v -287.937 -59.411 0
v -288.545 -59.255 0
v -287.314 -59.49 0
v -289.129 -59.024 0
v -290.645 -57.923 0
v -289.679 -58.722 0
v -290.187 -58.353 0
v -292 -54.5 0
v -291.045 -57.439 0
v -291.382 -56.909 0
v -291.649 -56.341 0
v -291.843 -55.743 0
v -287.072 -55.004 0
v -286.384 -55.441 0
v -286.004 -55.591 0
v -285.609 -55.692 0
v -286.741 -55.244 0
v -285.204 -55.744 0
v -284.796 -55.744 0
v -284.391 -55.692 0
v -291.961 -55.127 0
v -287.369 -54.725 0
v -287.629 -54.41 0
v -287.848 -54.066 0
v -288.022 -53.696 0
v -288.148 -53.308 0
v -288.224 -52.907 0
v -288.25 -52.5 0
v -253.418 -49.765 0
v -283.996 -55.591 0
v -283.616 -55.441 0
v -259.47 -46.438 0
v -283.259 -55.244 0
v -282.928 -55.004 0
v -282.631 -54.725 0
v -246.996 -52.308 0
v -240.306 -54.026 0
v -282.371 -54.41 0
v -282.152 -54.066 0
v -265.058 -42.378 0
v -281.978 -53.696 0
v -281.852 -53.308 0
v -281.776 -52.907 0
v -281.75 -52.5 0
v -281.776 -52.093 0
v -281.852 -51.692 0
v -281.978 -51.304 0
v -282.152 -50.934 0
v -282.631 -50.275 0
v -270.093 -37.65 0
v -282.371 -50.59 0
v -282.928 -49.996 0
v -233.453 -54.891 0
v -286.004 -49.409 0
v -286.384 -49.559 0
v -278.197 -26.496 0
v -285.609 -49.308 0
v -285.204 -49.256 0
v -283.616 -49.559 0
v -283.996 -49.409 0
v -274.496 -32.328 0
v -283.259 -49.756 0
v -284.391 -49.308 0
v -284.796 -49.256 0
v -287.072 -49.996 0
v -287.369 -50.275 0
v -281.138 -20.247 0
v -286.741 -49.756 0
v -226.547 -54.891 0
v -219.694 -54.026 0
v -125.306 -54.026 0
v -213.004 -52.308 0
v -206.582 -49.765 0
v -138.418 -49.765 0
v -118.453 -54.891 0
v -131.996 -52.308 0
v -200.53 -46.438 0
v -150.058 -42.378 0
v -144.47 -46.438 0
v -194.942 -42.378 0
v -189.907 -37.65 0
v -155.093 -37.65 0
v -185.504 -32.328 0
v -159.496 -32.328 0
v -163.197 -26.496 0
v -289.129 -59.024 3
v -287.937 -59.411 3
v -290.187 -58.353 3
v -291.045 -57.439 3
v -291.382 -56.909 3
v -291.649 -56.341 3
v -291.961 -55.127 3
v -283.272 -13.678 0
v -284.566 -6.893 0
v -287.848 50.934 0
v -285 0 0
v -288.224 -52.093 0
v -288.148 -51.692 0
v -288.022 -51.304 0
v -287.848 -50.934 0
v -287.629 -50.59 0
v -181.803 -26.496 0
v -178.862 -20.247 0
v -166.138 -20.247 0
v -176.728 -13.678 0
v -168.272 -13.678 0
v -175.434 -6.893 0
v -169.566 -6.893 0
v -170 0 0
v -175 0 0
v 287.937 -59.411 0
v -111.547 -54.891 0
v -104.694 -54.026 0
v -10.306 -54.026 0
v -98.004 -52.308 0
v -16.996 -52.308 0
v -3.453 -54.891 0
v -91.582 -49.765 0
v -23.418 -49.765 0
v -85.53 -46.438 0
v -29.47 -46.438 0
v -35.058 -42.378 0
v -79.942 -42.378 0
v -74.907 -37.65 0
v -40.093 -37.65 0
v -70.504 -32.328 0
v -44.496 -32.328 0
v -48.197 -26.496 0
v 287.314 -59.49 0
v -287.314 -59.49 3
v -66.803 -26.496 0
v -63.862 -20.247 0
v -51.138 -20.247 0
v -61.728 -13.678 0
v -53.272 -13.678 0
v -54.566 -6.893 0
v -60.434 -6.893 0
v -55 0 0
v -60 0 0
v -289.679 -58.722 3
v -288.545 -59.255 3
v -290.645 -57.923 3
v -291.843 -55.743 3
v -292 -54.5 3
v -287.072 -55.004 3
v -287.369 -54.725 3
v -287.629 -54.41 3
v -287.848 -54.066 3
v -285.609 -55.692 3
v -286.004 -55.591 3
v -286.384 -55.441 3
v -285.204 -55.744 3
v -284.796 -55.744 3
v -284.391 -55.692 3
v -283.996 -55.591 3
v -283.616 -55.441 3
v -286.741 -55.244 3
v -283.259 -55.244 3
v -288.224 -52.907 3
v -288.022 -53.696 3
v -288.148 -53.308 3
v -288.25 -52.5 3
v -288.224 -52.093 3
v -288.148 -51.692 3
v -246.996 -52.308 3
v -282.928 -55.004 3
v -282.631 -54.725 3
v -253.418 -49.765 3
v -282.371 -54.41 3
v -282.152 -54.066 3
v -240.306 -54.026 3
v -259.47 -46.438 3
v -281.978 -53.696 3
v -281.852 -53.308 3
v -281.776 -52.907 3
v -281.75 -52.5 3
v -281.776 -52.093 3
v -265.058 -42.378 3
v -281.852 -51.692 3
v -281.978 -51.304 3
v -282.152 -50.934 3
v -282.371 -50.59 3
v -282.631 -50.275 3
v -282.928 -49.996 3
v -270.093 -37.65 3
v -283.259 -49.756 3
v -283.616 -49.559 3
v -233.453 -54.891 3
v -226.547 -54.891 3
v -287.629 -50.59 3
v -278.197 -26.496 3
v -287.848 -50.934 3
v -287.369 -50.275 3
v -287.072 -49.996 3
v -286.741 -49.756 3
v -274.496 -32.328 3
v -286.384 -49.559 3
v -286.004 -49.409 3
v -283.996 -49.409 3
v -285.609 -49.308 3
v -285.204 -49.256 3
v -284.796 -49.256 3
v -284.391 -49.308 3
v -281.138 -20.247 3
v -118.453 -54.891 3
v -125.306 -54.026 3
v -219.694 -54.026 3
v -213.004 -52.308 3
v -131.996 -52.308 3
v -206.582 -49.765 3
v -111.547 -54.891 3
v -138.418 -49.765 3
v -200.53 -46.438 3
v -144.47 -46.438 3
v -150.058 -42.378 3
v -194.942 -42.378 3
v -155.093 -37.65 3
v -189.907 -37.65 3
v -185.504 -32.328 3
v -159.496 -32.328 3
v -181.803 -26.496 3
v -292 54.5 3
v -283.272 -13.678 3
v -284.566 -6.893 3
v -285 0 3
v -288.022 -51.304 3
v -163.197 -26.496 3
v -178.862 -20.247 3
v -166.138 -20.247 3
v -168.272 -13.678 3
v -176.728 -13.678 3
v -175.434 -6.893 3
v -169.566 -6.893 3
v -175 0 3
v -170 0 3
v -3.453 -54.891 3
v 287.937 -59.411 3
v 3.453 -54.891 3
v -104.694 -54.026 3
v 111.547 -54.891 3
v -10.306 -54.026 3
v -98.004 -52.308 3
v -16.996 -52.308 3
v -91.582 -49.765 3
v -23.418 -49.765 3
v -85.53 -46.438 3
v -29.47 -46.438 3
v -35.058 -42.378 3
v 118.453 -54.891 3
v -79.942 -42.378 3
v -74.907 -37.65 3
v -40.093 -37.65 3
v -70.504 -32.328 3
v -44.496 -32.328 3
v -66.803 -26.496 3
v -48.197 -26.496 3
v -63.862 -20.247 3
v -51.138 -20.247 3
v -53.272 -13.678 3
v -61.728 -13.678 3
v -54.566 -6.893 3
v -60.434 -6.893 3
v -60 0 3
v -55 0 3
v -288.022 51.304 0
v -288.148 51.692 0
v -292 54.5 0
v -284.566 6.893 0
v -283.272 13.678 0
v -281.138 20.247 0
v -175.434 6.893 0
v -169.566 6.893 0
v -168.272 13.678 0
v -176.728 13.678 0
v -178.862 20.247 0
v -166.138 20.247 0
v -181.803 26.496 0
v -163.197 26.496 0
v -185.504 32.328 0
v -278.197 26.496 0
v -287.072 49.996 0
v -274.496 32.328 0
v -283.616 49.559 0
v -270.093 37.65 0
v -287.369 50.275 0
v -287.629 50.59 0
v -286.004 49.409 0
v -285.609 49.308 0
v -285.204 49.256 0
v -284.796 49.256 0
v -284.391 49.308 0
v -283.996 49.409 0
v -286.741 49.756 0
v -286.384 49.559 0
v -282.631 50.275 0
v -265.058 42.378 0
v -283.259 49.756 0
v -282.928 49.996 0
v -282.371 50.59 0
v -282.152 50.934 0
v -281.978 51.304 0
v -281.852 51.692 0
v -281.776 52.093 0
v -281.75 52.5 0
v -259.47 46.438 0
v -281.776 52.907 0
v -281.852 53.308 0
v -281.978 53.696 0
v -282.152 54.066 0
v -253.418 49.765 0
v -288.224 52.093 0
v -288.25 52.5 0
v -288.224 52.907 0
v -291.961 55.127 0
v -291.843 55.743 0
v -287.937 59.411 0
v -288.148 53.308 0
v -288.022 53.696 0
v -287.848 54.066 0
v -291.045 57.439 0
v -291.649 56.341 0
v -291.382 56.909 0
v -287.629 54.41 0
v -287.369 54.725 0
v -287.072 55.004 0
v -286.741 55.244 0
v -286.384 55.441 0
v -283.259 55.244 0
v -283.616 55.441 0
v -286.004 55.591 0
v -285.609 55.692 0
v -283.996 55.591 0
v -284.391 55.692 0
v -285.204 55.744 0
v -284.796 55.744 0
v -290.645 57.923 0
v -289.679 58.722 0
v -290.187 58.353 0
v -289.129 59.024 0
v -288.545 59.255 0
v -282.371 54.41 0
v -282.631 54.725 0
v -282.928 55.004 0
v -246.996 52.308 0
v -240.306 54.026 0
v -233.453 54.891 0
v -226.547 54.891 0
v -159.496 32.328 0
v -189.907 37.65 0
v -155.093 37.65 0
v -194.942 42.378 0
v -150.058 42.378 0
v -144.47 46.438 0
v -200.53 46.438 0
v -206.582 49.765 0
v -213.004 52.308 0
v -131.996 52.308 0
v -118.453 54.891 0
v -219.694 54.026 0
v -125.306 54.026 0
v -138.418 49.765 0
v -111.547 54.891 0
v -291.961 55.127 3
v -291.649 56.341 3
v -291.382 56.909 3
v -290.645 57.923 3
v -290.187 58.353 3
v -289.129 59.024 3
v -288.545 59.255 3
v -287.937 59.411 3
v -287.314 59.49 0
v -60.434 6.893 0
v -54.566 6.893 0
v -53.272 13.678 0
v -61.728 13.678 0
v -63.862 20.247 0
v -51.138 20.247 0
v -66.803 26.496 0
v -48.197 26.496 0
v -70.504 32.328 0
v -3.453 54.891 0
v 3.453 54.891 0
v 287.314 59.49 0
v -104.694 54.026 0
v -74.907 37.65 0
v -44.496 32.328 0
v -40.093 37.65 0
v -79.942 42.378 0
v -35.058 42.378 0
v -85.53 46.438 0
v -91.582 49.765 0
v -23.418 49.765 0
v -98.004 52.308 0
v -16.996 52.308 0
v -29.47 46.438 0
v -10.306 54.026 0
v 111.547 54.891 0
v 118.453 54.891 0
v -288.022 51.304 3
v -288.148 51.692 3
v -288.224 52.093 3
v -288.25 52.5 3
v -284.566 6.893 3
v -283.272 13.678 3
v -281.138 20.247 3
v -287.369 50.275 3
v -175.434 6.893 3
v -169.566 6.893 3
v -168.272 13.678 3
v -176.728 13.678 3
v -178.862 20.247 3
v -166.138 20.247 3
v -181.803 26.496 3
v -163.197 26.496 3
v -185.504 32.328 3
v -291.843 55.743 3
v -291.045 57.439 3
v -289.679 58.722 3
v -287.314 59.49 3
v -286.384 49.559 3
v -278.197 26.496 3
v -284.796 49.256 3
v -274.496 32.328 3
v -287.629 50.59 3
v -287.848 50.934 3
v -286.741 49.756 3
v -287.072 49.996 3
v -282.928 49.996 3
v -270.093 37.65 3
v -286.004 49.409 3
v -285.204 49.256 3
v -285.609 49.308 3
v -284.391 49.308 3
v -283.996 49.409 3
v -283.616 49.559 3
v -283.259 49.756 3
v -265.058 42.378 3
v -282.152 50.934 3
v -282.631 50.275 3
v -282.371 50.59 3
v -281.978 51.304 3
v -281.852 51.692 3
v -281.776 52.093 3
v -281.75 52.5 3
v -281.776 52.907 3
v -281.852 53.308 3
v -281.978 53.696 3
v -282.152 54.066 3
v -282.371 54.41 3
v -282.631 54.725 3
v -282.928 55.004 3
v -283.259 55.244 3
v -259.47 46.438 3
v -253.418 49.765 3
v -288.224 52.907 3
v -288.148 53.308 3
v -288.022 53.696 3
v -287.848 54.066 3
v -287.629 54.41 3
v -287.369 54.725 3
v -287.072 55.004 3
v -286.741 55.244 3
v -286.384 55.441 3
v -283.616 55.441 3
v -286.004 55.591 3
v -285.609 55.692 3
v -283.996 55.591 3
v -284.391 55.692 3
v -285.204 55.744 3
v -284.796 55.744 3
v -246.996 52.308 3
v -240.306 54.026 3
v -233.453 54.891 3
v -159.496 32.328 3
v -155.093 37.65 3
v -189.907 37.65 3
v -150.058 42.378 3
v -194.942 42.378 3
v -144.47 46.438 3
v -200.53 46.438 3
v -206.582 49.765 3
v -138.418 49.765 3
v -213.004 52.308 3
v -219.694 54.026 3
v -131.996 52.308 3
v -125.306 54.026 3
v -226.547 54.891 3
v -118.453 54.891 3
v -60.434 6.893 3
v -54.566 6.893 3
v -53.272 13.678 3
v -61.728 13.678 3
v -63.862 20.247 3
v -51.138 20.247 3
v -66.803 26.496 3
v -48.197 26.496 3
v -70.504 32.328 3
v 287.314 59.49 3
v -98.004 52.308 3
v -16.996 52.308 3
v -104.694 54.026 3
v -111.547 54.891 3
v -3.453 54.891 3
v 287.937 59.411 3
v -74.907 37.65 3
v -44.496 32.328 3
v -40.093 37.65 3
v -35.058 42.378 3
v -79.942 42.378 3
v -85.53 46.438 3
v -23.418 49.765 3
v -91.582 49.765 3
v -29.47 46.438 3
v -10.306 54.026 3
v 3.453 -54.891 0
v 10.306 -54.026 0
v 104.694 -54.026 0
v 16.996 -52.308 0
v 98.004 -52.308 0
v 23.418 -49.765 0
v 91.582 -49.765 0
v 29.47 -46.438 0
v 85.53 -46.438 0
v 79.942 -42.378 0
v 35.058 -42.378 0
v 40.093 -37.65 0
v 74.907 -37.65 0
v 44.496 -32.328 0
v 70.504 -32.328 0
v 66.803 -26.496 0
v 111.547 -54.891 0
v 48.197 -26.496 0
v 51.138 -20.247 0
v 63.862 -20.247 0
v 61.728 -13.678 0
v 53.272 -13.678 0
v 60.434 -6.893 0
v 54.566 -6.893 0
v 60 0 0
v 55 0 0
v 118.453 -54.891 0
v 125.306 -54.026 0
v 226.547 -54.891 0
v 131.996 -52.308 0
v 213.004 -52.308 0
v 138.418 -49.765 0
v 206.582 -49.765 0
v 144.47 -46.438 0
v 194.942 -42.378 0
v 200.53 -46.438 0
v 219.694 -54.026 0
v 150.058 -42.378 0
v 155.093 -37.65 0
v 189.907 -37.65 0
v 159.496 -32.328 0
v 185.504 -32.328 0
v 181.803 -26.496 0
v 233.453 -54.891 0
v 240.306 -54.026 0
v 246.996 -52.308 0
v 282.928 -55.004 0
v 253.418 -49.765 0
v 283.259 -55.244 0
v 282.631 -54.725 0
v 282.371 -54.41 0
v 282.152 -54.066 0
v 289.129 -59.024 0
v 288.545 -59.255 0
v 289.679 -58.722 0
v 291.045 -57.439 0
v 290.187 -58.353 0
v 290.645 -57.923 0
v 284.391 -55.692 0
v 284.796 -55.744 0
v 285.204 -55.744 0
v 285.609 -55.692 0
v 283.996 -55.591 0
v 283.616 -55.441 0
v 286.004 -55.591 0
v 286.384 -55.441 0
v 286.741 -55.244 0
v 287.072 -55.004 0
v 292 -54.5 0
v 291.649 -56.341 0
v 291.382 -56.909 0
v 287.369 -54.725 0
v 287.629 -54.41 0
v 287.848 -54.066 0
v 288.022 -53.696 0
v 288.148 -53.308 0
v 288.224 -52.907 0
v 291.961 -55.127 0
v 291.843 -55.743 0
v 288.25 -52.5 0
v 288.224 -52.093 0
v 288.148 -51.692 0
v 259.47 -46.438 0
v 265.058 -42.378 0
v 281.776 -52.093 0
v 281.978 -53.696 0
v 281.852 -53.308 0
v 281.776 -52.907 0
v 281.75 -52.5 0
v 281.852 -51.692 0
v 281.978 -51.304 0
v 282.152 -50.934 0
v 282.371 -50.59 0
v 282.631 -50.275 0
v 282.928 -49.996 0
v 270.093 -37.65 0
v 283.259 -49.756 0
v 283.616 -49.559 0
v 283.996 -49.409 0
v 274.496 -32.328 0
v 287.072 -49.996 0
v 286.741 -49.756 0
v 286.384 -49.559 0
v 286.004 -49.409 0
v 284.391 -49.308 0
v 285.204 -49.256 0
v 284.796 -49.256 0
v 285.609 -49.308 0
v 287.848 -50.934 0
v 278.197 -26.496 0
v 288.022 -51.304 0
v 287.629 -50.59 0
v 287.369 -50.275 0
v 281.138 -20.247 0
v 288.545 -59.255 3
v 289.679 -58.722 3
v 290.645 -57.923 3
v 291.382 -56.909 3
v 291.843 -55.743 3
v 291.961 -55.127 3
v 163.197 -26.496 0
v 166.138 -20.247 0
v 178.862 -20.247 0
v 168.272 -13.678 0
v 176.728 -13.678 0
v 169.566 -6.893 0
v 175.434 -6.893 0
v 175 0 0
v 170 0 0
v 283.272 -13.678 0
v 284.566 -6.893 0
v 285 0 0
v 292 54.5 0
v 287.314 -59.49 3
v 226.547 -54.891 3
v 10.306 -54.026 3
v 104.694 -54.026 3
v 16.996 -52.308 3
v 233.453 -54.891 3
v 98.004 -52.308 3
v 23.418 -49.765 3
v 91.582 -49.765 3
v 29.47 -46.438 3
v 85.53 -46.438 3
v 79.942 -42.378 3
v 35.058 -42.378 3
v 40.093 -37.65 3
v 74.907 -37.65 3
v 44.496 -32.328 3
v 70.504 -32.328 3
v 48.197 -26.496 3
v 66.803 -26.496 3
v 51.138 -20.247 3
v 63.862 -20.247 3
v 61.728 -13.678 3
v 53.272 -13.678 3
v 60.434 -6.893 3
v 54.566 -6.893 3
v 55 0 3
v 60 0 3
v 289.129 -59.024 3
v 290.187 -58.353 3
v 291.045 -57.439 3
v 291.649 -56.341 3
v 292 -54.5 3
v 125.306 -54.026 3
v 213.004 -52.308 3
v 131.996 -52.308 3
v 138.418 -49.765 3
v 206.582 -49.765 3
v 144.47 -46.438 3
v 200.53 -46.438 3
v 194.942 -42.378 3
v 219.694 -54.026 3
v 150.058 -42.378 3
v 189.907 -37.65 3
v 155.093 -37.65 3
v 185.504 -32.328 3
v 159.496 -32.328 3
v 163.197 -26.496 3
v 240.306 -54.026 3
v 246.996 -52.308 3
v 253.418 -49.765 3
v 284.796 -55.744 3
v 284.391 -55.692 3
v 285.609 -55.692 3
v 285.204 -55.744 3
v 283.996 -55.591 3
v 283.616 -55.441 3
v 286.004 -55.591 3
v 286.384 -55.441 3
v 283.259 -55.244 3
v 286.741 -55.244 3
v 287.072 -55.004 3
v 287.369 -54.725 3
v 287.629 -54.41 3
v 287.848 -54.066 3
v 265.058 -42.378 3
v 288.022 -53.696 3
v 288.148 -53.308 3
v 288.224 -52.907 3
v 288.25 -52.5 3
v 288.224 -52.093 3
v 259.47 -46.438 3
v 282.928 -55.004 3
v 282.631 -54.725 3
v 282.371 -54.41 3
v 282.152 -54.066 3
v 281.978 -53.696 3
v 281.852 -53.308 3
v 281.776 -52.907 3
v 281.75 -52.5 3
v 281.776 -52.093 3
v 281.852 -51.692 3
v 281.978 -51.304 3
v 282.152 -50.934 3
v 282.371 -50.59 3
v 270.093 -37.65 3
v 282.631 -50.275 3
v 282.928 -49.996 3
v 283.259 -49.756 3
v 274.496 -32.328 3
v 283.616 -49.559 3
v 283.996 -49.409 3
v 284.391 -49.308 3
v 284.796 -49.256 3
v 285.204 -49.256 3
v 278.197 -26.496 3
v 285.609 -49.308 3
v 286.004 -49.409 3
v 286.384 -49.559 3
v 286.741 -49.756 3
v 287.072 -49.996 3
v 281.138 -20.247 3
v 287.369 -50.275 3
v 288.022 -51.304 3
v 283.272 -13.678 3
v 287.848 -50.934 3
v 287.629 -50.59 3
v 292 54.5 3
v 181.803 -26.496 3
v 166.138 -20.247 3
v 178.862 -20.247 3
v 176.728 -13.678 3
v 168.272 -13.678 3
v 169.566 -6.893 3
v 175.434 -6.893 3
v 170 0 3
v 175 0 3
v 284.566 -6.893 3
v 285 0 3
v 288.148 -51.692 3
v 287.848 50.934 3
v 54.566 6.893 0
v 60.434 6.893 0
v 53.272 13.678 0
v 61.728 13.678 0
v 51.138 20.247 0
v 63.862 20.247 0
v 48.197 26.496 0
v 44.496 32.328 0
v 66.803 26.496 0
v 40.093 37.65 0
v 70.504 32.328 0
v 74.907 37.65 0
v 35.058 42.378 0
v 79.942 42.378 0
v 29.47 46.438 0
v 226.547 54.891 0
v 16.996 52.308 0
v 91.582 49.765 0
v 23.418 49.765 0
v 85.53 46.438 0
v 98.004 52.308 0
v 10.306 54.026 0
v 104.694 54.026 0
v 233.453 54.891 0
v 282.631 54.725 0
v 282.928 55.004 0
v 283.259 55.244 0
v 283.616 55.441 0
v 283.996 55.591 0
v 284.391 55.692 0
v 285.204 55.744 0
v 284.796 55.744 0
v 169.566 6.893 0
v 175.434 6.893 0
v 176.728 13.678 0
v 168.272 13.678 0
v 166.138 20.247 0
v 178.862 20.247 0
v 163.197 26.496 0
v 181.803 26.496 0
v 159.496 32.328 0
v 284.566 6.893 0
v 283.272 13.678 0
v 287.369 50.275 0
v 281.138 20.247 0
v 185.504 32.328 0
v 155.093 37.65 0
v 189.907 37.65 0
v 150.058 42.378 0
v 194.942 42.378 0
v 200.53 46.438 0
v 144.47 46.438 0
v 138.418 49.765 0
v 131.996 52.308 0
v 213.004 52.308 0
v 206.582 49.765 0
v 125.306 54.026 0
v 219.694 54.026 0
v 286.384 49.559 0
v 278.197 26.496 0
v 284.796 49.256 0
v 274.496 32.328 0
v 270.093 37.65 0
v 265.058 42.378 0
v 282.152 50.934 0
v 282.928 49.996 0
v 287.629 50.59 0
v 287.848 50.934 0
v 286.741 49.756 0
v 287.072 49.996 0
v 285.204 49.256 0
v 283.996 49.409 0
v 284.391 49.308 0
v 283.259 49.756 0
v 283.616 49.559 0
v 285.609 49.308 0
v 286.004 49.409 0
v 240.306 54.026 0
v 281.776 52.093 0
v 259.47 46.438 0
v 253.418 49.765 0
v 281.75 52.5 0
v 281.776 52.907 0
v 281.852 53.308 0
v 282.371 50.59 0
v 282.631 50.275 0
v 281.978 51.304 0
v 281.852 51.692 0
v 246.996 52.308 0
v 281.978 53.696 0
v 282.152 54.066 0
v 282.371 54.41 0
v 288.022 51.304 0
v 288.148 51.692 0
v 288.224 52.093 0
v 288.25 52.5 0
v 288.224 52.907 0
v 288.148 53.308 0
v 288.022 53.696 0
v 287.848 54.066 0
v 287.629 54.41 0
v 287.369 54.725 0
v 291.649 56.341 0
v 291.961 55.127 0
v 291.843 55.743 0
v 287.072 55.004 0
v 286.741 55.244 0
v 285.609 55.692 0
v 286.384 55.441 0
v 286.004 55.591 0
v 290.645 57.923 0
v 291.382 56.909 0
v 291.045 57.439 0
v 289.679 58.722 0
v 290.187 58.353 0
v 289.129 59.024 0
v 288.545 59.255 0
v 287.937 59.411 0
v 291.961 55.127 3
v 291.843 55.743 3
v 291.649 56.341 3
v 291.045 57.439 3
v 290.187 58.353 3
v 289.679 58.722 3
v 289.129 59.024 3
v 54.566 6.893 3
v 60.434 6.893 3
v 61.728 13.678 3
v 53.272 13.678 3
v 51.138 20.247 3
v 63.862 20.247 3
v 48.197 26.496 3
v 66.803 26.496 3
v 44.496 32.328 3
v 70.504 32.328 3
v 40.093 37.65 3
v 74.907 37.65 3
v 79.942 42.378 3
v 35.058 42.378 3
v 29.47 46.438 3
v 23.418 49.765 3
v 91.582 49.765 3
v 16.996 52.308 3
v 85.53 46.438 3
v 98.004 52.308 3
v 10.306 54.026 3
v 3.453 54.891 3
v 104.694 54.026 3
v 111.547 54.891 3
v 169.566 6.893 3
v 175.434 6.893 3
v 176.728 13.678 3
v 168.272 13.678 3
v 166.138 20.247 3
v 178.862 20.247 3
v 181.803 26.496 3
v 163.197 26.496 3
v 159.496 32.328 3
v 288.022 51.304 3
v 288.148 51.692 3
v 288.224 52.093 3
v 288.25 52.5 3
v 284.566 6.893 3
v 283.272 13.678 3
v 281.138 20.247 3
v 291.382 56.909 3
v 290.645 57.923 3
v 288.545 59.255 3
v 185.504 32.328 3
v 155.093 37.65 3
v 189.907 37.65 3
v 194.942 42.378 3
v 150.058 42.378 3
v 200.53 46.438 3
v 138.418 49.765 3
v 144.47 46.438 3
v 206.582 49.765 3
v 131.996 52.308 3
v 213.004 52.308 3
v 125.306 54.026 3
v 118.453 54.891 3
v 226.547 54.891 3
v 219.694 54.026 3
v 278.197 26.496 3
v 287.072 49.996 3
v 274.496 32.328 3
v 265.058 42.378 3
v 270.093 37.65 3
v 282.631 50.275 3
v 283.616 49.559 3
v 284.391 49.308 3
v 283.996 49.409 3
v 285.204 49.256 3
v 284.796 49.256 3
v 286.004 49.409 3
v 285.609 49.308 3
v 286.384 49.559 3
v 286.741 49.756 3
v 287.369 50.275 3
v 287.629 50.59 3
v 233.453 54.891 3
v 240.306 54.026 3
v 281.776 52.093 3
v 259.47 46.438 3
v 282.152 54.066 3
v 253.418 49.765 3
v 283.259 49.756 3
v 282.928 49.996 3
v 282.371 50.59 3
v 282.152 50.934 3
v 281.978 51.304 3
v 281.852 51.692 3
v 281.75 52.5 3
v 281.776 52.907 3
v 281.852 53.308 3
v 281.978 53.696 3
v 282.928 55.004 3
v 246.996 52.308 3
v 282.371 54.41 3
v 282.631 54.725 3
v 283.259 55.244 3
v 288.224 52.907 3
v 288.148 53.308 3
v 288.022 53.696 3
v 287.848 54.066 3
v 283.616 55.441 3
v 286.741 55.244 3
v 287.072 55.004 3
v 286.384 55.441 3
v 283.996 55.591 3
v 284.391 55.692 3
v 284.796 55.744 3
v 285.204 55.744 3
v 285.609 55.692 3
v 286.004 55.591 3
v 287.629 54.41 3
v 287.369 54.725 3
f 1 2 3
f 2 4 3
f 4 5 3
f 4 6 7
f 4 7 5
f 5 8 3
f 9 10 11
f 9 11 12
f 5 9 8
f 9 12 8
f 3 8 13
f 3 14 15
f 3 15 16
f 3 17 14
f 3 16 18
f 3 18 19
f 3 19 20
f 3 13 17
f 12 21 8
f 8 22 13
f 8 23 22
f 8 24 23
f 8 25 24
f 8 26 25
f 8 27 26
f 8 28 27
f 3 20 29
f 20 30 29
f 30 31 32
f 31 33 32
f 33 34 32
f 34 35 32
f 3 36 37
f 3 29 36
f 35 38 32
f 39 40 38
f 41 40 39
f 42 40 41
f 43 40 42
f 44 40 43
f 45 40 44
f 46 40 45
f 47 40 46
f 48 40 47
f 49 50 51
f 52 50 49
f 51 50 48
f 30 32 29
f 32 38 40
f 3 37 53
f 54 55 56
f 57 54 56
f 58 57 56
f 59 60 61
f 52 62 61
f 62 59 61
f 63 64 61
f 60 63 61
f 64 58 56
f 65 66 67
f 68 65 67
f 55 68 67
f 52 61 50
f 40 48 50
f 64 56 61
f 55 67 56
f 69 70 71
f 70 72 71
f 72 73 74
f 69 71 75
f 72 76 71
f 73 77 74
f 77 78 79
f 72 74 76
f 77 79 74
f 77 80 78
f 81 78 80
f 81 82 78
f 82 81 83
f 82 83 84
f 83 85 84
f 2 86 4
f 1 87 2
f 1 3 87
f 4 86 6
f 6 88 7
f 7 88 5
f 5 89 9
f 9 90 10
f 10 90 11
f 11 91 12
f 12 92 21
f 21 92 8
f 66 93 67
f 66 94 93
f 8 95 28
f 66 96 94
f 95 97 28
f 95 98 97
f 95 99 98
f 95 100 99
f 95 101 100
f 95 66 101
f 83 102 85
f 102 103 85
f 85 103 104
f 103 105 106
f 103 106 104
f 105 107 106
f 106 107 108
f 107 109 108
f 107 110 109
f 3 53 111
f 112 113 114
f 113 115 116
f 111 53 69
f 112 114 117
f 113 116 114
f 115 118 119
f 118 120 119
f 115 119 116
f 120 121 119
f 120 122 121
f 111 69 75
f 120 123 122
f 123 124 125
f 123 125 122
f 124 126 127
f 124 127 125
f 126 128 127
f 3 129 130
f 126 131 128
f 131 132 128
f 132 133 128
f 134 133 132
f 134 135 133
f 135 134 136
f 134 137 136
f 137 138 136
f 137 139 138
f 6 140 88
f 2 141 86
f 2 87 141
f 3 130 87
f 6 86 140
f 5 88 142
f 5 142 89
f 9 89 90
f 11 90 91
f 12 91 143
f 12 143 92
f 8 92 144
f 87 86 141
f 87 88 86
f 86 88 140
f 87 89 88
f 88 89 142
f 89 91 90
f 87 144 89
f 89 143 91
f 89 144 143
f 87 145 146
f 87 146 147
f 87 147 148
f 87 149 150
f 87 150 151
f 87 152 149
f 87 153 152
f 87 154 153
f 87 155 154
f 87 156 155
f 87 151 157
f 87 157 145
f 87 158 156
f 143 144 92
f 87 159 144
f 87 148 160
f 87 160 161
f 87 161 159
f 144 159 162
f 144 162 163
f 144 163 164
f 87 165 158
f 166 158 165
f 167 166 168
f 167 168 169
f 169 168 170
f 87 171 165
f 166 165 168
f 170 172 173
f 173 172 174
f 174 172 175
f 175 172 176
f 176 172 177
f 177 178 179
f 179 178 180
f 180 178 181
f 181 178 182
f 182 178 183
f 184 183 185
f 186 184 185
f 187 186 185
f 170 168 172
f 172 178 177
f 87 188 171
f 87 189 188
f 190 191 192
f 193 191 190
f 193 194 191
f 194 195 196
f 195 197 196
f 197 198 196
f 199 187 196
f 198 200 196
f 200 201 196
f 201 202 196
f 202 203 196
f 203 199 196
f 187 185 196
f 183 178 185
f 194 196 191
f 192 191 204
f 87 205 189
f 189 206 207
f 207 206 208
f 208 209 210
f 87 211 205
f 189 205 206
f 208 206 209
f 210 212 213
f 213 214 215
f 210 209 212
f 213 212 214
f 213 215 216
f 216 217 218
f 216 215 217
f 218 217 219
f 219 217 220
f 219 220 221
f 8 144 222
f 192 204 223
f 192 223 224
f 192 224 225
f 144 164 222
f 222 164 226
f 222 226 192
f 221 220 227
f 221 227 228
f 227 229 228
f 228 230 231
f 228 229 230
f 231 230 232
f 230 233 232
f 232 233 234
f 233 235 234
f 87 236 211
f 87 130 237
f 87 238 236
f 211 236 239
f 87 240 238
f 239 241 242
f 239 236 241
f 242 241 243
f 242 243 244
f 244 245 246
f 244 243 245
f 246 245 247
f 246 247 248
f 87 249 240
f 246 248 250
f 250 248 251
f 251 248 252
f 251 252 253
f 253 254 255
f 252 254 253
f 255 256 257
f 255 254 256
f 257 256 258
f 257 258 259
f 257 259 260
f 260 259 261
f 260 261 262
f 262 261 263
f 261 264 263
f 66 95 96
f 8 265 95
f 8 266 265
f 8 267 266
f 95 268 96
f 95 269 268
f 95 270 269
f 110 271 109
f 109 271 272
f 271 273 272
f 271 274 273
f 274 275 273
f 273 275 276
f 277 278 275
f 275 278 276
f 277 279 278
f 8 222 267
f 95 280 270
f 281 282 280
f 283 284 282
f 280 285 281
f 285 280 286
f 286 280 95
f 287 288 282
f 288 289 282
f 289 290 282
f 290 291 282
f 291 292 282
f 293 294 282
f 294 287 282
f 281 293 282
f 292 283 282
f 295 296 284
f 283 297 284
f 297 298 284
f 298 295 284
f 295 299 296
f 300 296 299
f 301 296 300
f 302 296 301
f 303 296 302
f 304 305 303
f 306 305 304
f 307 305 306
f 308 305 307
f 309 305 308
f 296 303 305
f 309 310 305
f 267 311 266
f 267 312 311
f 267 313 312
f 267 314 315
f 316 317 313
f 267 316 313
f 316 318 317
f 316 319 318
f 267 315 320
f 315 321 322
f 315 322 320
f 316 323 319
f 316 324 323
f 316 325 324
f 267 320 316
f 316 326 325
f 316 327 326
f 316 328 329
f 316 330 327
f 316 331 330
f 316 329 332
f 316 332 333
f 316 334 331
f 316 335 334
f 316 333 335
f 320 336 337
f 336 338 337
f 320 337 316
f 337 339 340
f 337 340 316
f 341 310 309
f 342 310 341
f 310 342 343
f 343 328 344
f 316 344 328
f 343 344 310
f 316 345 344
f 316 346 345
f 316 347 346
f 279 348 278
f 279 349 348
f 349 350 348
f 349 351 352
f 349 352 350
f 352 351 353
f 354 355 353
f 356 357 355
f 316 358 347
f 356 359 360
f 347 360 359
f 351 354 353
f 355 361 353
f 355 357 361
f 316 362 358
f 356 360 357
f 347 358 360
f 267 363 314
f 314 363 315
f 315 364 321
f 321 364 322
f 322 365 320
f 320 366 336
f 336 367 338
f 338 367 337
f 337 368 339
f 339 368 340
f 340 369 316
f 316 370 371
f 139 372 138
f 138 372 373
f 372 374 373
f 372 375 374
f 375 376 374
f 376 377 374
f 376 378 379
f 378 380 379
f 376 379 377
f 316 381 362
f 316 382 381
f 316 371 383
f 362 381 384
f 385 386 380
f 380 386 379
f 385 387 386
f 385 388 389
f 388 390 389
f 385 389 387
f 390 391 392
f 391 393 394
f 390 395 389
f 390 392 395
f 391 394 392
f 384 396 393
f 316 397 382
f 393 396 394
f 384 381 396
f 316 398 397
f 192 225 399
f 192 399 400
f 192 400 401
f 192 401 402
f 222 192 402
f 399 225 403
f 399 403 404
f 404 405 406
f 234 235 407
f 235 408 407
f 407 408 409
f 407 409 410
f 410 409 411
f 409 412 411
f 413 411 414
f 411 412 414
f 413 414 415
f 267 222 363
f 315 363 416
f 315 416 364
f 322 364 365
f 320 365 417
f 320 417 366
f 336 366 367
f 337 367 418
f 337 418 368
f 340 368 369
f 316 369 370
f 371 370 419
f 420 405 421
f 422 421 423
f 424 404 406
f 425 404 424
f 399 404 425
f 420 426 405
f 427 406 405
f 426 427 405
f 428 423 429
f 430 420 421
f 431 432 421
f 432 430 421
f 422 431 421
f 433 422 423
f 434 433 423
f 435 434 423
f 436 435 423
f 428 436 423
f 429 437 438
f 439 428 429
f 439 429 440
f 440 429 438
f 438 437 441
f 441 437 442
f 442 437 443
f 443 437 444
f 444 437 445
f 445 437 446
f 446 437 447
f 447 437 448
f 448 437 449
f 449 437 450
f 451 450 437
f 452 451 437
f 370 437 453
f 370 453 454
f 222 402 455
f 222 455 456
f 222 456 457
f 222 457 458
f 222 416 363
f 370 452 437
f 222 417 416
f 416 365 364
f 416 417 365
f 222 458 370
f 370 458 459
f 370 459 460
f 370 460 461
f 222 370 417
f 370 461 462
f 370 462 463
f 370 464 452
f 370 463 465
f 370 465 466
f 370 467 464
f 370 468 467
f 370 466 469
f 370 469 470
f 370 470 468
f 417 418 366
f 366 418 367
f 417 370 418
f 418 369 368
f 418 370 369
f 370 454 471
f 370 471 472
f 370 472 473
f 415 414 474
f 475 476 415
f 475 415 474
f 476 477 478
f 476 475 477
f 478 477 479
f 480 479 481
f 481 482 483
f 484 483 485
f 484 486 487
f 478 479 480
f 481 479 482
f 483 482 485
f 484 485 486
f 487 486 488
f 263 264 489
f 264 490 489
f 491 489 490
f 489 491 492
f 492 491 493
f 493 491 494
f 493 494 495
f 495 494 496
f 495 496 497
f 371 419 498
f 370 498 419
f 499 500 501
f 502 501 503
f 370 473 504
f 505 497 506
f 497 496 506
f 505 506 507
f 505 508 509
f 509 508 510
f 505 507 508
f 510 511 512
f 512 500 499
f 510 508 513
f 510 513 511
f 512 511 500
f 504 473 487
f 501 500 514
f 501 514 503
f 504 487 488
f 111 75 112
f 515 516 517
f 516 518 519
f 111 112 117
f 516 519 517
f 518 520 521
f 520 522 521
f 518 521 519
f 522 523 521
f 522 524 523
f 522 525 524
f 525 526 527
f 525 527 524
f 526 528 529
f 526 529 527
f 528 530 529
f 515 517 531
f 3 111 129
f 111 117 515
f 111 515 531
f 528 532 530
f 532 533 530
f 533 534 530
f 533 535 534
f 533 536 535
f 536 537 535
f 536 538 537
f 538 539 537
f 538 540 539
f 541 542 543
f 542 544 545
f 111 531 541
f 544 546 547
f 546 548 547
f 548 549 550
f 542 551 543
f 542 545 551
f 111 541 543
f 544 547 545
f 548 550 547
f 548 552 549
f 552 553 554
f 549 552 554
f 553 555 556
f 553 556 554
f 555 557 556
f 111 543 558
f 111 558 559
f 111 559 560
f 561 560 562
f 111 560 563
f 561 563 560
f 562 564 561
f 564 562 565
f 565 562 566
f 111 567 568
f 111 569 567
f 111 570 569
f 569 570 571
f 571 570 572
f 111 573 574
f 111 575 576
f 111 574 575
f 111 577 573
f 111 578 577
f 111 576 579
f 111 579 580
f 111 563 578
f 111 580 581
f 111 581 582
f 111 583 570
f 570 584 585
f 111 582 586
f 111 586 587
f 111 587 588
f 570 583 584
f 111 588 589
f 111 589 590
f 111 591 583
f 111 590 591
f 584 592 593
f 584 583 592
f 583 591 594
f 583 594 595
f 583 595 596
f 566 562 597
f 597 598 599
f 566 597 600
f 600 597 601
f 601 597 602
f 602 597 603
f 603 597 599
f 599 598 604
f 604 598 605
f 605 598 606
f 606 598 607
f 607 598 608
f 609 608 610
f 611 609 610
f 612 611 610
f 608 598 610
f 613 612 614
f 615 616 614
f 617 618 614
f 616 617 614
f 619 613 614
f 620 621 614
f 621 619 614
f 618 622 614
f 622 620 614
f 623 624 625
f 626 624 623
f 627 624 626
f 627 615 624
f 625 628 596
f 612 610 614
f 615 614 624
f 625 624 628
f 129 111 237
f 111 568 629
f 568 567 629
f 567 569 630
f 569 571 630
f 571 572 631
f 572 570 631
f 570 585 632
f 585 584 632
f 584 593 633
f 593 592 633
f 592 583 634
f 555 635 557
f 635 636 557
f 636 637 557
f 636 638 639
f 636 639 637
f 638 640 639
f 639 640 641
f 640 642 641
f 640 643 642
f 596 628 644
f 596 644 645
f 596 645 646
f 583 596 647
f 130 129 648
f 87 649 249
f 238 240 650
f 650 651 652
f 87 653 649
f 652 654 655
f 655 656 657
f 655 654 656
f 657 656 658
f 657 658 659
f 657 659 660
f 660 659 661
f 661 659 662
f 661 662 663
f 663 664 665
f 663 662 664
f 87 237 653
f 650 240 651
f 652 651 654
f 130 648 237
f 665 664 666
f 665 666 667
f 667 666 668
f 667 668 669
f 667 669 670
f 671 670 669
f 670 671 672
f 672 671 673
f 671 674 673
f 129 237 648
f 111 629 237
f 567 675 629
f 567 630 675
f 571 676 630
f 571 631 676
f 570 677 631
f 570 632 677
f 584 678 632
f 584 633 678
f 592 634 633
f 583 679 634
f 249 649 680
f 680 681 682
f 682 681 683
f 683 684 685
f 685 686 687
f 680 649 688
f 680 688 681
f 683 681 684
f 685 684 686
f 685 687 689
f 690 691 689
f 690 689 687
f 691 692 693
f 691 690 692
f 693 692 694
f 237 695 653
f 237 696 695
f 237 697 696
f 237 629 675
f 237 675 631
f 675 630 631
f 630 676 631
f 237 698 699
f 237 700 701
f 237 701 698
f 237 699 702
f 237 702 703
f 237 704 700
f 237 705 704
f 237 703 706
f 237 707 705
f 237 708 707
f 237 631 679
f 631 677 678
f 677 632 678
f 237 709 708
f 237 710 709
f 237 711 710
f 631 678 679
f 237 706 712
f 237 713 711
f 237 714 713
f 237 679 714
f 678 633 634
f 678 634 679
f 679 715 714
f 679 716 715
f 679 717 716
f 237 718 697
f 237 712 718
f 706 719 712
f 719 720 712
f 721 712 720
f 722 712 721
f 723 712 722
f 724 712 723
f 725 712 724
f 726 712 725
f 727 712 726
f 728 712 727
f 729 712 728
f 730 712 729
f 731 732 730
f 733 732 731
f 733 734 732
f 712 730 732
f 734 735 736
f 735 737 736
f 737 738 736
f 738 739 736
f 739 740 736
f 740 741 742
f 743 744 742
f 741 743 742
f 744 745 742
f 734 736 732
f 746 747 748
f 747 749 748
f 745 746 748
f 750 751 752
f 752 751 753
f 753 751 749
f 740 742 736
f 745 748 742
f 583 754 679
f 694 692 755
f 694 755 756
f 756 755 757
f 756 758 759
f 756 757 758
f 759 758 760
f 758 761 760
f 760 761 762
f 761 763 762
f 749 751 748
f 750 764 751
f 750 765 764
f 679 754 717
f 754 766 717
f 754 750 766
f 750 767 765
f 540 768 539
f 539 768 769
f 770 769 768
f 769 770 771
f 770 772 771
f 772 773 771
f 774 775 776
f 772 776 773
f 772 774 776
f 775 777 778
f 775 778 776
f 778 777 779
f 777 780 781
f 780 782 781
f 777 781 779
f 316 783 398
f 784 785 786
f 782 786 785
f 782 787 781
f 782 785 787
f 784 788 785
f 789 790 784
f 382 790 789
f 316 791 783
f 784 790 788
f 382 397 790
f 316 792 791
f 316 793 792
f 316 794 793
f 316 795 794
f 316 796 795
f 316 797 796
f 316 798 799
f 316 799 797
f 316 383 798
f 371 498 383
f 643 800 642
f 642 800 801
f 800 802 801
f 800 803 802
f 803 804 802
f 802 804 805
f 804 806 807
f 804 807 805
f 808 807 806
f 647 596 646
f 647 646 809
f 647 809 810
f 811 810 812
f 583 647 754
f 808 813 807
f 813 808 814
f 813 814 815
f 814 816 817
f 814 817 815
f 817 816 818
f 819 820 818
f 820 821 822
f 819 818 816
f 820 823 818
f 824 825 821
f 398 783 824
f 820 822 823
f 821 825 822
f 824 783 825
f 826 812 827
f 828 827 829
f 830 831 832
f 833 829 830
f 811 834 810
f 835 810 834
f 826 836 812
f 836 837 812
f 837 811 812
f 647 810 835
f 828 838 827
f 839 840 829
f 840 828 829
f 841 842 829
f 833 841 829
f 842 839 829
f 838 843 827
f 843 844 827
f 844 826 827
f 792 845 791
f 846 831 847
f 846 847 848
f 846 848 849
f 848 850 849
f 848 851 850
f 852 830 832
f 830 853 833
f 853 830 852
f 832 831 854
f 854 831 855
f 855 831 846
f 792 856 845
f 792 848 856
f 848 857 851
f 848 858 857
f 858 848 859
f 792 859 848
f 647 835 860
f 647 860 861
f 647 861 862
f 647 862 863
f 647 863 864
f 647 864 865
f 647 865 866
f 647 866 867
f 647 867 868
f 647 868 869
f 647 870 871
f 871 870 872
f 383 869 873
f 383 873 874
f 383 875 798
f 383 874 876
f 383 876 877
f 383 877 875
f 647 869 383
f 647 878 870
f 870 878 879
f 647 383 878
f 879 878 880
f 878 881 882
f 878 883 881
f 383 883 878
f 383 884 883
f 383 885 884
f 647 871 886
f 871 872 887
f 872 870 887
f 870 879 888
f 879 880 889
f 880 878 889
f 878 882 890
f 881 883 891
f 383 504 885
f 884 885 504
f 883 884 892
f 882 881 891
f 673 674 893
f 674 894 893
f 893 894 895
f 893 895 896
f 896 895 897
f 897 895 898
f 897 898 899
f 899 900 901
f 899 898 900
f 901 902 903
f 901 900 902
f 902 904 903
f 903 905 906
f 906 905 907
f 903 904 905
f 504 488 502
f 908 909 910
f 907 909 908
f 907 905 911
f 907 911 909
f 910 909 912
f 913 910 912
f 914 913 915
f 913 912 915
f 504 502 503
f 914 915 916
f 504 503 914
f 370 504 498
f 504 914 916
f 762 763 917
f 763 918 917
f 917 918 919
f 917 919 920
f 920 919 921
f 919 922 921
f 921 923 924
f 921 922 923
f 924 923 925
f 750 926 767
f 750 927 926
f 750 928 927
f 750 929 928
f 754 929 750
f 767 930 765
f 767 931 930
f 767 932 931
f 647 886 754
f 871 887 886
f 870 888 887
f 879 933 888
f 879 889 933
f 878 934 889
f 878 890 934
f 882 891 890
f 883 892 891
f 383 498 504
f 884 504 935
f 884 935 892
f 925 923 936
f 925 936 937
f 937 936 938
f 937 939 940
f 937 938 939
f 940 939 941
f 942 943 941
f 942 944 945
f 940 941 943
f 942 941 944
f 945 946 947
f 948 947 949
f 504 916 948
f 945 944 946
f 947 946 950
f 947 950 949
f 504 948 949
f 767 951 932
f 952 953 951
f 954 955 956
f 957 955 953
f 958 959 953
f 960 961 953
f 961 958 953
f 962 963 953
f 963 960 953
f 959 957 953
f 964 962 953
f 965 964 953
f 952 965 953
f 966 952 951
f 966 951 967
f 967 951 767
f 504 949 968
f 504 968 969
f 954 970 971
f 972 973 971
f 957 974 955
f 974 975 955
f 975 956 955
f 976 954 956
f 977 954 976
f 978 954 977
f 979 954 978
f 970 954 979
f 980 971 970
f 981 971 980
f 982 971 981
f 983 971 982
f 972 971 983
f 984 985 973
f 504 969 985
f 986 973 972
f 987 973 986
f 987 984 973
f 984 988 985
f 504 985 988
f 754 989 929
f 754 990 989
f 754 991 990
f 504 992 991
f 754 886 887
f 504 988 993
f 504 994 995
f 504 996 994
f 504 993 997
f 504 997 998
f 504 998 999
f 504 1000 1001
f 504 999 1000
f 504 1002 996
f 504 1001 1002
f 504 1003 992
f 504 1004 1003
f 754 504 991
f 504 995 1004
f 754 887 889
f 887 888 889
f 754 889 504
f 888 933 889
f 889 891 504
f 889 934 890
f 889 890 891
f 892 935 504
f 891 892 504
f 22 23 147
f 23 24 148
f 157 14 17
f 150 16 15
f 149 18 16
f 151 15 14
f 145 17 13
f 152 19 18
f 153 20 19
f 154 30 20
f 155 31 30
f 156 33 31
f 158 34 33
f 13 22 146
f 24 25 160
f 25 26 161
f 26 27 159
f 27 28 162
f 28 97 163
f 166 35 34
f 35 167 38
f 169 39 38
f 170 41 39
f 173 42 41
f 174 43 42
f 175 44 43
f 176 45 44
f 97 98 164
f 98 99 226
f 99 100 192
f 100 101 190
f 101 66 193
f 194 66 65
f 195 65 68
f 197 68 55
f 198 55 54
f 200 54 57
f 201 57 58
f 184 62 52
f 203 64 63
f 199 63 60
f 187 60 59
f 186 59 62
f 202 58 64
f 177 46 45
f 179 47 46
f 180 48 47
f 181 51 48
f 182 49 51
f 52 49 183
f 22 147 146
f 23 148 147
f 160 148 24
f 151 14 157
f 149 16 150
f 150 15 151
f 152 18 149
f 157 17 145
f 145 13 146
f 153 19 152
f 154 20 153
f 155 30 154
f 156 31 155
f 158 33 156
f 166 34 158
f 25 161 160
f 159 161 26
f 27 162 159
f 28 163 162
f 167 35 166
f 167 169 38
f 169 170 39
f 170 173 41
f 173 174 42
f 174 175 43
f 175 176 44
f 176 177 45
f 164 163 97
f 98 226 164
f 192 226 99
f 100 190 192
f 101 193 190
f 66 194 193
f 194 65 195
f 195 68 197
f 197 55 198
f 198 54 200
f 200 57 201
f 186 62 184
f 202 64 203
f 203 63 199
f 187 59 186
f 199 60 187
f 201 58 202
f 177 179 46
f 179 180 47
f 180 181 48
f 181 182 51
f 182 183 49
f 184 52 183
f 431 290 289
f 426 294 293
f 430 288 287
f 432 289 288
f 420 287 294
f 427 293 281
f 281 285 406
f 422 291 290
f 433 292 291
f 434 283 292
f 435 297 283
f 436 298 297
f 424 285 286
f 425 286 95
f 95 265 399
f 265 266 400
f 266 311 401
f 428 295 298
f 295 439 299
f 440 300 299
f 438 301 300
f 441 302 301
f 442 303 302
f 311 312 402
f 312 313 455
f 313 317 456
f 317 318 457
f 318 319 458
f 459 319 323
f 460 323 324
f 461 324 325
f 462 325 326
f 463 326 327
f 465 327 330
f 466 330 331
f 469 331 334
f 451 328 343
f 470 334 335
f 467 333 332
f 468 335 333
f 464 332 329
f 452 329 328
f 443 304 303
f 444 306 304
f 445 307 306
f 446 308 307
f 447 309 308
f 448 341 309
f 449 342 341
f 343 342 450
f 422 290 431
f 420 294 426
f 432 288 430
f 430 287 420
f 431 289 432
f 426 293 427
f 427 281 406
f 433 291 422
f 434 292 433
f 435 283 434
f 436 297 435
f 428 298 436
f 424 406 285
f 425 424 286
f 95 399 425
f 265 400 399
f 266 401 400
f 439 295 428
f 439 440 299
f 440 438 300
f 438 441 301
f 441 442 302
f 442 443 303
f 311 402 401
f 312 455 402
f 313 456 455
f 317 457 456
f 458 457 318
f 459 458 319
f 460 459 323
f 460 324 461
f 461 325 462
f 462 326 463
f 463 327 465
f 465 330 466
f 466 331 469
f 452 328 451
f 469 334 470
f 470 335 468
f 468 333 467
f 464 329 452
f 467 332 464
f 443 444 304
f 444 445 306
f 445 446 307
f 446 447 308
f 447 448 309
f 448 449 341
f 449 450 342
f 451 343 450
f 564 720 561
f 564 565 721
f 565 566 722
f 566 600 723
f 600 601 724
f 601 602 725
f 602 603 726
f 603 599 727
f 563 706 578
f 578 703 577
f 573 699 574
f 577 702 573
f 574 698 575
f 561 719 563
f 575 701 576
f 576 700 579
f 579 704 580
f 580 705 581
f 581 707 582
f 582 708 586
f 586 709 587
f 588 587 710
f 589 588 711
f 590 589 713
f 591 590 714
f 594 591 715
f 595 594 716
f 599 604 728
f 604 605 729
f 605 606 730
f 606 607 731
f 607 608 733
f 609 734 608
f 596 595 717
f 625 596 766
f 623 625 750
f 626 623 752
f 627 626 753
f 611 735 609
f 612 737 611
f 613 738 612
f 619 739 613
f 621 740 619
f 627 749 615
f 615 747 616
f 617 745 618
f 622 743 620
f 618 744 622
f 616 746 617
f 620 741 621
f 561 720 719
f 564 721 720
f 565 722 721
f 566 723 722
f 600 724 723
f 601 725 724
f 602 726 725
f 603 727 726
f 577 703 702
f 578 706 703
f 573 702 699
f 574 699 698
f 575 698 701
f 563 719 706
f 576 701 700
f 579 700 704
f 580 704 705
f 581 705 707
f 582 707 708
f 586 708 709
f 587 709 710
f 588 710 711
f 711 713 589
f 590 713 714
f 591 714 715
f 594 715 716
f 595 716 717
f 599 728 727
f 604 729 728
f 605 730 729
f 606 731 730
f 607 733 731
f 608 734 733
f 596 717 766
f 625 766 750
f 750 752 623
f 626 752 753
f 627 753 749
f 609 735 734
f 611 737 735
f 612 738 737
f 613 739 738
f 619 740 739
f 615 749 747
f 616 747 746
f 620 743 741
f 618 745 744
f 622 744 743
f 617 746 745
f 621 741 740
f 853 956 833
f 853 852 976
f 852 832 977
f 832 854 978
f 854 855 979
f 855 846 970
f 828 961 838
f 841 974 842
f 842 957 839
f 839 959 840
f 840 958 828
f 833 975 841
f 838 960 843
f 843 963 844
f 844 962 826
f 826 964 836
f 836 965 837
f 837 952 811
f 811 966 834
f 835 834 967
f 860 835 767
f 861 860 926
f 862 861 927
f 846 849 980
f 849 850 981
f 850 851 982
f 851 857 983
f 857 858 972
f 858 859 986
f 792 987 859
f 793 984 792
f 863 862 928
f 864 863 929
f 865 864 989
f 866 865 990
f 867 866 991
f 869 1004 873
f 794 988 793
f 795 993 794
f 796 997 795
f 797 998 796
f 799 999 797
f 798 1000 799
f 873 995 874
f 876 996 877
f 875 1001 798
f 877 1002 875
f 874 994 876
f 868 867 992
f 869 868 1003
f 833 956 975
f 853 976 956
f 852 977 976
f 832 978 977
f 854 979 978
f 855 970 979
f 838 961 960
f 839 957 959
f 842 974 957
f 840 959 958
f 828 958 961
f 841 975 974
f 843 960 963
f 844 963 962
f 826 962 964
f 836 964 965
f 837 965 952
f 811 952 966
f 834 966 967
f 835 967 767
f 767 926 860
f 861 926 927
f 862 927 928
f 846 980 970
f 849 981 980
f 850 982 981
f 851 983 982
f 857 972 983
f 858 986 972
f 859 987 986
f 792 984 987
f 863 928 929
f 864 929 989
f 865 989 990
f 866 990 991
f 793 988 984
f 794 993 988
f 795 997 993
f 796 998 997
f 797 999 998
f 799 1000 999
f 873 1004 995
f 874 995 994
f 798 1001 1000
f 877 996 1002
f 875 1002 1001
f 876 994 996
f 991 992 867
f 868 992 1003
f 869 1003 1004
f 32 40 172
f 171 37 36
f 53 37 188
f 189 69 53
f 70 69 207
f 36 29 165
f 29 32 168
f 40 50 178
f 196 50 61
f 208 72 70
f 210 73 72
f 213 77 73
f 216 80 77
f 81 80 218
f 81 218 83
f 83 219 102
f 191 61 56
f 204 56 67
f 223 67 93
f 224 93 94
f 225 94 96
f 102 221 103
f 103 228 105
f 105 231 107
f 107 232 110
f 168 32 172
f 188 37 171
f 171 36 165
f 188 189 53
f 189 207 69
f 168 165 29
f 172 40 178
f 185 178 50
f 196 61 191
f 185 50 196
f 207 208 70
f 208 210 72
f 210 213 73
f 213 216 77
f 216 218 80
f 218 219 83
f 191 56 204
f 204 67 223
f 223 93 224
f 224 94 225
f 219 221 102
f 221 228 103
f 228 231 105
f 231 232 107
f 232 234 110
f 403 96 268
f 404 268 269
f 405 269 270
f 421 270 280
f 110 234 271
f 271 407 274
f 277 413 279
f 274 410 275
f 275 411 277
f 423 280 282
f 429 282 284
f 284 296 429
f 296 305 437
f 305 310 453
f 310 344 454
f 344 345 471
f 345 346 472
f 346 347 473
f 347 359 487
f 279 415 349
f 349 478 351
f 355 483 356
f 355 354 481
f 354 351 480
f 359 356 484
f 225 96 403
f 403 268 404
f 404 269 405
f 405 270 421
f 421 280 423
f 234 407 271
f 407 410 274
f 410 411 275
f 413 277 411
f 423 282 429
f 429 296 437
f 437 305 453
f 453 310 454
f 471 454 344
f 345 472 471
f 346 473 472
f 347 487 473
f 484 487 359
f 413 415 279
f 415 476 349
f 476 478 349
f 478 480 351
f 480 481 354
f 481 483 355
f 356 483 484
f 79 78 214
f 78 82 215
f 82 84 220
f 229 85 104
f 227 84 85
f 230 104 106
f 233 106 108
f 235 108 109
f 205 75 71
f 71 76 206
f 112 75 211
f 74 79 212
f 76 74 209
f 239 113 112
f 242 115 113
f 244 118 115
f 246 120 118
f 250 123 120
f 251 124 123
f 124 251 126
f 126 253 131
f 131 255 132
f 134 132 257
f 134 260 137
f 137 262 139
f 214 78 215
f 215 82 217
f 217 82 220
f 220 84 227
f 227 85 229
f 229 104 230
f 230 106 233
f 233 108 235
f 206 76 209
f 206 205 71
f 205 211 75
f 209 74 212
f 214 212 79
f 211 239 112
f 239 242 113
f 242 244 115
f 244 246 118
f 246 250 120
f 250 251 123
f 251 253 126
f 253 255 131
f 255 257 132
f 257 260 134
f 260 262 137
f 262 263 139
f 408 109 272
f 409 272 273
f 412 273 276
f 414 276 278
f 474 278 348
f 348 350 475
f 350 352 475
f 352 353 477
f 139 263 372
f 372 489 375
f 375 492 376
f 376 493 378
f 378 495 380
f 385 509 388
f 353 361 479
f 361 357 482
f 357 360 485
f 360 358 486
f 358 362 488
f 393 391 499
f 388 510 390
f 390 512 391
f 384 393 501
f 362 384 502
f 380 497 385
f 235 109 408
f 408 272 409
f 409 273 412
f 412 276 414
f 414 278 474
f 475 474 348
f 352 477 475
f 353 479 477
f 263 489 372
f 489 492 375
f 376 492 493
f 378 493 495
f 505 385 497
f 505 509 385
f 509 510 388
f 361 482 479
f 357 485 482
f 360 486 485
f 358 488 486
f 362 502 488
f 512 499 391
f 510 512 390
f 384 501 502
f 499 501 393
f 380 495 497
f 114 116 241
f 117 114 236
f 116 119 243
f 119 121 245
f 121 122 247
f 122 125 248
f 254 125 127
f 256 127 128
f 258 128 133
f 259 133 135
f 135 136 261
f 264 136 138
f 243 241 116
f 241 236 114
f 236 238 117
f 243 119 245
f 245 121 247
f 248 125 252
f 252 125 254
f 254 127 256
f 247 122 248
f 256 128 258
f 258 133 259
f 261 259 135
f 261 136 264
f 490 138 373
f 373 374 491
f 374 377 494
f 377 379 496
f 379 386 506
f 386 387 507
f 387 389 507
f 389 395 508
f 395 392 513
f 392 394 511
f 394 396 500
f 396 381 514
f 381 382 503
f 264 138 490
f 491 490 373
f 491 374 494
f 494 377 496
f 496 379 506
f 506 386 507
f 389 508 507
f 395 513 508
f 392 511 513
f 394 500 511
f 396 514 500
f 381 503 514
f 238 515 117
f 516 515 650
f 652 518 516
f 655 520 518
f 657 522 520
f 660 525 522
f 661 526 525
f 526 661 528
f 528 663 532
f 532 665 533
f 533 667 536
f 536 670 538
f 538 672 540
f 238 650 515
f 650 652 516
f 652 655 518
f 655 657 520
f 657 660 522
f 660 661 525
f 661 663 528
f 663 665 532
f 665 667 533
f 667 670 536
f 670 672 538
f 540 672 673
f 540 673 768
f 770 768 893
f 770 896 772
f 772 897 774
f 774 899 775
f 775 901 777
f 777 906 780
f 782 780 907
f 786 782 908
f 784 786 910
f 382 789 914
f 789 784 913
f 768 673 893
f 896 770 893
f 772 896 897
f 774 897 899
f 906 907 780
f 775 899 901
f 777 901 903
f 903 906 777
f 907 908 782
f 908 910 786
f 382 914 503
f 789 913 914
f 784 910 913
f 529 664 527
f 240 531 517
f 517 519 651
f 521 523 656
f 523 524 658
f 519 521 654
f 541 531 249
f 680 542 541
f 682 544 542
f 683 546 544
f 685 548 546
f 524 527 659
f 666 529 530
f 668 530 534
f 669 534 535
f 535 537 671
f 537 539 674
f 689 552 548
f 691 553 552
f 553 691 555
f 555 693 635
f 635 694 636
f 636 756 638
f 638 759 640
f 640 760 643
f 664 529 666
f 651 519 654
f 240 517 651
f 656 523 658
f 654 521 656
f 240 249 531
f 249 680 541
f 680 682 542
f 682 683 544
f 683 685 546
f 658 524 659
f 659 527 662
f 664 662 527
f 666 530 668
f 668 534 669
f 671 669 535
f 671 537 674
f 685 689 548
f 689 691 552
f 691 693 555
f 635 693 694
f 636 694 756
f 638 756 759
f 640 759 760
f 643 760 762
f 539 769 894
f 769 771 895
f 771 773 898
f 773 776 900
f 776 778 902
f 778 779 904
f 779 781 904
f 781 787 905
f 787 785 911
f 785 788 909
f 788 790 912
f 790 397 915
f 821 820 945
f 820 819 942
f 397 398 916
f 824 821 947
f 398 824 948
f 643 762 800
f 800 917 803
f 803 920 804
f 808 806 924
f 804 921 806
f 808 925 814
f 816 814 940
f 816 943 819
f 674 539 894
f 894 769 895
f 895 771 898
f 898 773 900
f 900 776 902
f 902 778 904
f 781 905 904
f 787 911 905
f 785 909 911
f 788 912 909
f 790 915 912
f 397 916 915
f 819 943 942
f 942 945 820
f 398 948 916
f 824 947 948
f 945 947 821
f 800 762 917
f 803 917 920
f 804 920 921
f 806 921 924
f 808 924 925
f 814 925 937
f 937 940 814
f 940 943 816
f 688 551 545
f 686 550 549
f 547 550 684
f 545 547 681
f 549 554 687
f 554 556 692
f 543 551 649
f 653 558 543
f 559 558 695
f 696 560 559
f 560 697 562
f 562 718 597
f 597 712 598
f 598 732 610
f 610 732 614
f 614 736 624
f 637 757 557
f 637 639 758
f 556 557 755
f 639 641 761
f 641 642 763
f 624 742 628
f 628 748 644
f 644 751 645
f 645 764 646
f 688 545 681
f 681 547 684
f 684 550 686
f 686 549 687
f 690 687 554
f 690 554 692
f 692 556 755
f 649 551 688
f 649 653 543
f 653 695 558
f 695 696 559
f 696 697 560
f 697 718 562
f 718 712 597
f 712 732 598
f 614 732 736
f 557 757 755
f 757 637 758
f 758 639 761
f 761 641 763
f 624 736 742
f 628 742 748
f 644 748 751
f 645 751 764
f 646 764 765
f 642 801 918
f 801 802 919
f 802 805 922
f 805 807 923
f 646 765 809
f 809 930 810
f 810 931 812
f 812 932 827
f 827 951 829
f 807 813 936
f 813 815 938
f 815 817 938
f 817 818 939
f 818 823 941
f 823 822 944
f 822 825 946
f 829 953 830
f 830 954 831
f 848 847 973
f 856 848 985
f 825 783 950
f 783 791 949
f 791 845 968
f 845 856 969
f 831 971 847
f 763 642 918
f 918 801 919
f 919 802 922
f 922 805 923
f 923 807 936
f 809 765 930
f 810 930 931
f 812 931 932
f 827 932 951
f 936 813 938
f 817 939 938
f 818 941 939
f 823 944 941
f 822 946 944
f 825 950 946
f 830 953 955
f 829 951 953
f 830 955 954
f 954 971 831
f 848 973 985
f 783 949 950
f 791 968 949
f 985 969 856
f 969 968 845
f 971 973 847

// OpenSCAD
$fn = 50;

difference() {
	union() {
		hull() {
			translate(v = [-287.0, 54.5, 0]) {
				cylinder(h = 3, r = 5);
			}
			translate(v = [287.0, 54.5, 0]) {
				cylinder(h = 3, r = 5);
			}
			translate(v = [-287.0, -54.5, 0]) {
				cylinder(h = 3, r = 5);
			}
			translate(v = [287.0, -54.5, 0]) {
				cylinder(h = 3, r = 5);
			}
		}
	}
	union() {
		translate(v = [-285.0, -52.5, -100.0]) {
			cylinder(h = 200, r = 3.25);
		}
		translate(v = [-285.0, 52.5, -100.0]) {
			cylinder(h = 200, r = 3.25);
		}
		translate(v = [285.0, -52.5, -100.0]) {
			cylinder(h = 200, r = 3.25);
		}
		translate(v = [285.0, 52.5, -100.0]) {
			cylinder(h = 200, r = 3.25);
		}
		translate(v = [-285.0, -52.5, -100.0]) {
			cylinder(h = 200, r = 1.8);
		}
		translate(v = [-285.0, 52.5, -100.0]) {
			cylinder(h = 200, r = 1.8);
		}
		translate(v = [285.0, -52.5, -100.0]) {
			cylinder(h = 200, r = 1.8);
		}
		translate(v = [285.0, 52.5, -100.0]) {
			cylinder(h = 200, r = 1.8);
		}
		translate(v = [-230.0, 0, 0.0]) {
			cylinder(h = 3, r = 55.0);
		}
		translate(v = [-115.0, 0, 0.0]) {
			cylinder(h = 3, r = 55.0);
		}
		cylinder(h = 3, r = 55.0);
		translate(v = [115.0, 0, 0.0]) {
			cylinder(h = 3, r = 55.0);
		}
		translate(v = [230.0, 0, 0.0]) {
			cylinder(h = 3, r = 55.0);
		}
	}
}
